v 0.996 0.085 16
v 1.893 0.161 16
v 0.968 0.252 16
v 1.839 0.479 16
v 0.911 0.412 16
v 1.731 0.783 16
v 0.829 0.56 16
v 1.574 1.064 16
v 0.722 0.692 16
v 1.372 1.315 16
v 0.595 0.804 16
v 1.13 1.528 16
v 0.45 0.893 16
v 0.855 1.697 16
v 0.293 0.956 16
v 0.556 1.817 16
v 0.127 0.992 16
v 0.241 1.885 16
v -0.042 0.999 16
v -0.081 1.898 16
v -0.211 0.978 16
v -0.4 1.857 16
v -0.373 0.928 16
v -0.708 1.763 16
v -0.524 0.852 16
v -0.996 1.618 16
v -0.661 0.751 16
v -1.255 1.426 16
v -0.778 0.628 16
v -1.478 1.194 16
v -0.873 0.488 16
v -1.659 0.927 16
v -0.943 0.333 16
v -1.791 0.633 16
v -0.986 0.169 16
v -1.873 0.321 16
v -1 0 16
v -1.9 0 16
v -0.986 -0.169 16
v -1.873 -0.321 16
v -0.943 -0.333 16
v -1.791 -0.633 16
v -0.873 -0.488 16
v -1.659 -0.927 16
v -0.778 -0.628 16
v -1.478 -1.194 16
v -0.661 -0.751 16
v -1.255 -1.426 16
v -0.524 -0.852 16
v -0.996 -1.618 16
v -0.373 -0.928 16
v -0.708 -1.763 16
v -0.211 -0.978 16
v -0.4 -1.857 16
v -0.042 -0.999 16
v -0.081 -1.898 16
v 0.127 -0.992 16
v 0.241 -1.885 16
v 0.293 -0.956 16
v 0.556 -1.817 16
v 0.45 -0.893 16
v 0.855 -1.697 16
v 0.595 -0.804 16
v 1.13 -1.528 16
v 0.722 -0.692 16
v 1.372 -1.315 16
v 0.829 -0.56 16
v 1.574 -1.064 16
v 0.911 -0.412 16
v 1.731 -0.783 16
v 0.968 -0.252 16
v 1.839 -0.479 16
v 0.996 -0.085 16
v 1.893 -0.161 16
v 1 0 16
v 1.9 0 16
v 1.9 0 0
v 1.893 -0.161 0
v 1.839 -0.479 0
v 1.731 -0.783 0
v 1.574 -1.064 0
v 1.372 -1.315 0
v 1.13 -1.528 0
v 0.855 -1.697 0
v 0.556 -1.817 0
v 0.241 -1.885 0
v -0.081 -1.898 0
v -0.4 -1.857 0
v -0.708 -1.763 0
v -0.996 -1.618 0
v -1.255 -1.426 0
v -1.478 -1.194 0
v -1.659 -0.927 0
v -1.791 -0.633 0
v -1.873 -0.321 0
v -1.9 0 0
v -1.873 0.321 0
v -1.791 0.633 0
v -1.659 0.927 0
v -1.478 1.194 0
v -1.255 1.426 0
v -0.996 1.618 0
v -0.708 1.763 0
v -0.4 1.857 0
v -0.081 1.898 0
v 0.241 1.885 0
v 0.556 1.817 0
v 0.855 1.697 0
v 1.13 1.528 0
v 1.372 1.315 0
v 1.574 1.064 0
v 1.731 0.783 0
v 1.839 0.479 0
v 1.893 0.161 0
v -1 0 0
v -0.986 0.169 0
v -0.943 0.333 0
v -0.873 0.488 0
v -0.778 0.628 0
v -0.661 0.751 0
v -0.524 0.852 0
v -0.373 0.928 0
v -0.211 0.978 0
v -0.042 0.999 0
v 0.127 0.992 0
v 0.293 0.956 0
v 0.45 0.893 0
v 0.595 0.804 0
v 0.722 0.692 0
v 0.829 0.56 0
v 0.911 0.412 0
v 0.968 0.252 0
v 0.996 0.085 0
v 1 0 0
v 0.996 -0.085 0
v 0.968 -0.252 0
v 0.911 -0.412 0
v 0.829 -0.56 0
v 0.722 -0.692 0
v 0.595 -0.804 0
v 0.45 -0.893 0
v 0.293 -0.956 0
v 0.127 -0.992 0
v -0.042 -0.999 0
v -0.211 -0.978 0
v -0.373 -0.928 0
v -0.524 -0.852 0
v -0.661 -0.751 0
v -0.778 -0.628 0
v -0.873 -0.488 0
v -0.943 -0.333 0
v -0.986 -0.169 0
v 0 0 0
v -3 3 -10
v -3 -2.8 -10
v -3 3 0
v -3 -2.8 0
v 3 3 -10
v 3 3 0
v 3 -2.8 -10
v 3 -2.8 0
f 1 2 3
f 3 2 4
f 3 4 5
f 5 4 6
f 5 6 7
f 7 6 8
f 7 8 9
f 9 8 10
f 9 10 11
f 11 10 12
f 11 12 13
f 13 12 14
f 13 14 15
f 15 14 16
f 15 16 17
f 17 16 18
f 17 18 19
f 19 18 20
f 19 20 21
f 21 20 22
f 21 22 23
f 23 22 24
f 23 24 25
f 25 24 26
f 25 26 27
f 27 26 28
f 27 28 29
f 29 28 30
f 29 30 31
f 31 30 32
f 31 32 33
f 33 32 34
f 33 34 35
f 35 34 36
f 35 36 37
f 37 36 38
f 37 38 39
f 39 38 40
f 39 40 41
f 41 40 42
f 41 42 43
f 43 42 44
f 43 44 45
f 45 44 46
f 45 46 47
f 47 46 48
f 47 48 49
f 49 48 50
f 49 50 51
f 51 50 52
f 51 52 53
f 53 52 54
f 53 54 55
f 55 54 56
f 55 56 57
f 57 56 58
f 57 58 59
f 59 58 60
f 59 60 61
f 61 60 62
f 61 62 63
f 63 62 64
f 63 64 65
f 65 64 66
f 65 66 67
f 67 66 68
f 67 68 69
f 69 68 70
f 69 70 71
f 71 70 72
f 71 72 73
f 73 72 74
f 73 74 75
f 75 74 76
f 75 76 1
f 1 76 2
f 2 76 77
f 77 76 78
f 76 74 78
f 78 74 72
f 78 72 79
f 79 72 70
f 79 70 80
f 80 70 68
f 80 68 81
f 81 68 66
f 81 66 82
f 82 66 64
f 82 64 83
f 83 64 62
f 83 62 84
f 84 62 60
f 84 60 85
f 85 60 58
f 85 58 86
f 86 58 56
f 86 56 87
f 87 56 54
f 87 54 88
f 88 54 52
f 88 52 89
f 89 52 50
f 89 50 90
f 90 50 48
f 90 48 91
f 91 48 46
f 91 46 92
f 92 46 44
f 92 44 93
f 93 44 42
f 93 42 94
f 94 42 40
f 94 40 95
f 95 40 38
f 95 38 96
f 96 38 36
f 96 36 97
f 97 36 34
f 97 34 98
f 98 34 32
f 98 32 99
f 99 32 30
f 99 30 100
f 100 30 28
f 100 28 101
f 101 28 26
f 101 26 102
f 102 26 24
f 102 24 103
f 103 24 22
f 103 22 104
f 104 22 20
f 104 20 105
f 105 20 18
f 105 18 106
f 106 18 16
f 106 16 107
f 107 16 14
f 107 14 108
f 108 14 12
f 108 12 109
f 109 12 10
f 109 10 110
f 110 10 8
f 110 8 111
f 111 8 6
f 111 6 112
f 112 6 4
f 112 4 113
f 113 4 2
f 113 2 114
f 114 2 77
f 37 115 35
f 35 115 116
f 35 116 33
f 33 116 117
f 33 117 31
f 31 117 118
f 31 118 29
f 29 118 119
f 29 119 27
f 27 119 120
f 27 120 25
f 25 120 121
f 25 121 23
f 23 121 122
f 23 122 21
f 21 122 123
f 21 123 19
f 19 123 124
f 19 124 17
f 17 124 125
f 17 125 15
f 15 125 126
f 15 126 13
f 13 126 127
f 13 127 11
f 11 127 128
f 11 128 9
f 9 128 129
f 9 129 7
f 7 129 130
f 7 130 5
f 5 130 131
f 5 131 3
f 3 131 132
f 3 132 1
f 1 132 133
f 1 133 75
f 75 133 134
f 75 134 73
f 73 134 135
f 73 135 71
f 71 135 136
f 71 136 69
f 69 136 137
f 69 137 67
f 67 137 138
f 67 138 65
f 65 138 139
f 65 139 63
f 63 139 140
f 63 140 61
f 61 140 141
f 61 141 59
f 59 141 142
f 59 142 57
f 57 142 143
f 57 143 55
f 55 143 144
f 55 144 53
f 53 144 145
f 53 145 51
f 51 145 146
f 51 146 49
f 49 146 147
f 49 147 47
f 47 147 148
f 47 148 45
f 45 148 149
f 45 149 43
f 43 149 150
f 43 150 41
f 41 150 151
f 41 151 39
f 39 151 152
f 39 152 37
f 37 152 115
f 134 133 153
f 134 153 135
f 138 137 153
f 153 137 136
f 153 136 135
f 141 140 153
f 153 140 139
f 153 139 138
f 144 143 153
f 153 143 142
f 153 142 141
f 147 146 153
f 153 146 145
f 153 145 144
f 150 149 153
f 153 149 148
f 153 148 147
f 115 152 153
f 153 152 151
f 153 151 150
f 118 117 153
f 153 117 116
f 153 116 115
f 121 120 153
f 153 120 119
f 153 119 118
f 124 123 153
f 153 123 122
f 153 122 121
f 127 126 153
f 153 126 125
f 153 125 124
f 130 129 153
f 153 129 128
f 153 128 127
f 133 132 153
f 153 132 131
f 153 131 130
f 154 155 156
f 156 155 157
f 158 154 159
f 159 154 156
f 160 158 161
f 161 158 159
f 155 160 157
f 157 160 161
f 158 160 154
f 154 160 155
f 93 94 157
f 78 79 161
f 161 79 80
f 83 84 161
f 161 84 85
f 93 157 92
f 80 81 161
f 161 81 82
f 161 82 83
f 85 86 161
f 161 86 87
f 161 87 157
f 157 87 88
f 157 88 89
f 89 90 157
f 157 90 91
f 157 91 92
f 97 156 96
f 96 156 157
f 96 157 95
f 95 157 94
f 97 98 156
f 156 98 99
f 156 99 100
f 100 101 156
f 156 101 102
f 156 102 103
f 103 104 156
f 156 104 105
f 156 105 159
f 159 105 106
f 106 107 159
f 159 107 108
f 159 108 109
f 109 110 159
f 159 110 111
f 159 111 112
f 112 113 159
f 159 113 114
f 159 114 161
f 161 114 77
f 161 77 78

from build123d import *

# Parameters (mm, degrees)
SKETCH_1_R      = 1.9
SKETCH_1_R_2    = 1
EXTRUDE_1_DEPTH = 16
SKETCH_2_W      = 6
SKETCH_2_H      = 5.8
EXTRUDE_2_DEPTH = 10


with BuildPart() as part:
    # Эскиз1 → Бобышка-Вытянуть1 (new body)
    with BuildSketch(Plane.XY):
        Circle(SKETCH_1_R)
        Circle(SKETCH_1_R_2, mode=Mode.SUBTRACT)
    extrude(amount=EXTRUDE_1_DEPTH)

    # Эскиз2 → Бобышка-Вытянуть2 (add)
    with BuildSketch(Plane.XY):
        with Locations((0, 0.1)):
            Rectangle(SKETCH_2_W, SKETCH_2_H)
    extrude(amount=-EXTRUDE_2_DEPTH)


solid = part.part
